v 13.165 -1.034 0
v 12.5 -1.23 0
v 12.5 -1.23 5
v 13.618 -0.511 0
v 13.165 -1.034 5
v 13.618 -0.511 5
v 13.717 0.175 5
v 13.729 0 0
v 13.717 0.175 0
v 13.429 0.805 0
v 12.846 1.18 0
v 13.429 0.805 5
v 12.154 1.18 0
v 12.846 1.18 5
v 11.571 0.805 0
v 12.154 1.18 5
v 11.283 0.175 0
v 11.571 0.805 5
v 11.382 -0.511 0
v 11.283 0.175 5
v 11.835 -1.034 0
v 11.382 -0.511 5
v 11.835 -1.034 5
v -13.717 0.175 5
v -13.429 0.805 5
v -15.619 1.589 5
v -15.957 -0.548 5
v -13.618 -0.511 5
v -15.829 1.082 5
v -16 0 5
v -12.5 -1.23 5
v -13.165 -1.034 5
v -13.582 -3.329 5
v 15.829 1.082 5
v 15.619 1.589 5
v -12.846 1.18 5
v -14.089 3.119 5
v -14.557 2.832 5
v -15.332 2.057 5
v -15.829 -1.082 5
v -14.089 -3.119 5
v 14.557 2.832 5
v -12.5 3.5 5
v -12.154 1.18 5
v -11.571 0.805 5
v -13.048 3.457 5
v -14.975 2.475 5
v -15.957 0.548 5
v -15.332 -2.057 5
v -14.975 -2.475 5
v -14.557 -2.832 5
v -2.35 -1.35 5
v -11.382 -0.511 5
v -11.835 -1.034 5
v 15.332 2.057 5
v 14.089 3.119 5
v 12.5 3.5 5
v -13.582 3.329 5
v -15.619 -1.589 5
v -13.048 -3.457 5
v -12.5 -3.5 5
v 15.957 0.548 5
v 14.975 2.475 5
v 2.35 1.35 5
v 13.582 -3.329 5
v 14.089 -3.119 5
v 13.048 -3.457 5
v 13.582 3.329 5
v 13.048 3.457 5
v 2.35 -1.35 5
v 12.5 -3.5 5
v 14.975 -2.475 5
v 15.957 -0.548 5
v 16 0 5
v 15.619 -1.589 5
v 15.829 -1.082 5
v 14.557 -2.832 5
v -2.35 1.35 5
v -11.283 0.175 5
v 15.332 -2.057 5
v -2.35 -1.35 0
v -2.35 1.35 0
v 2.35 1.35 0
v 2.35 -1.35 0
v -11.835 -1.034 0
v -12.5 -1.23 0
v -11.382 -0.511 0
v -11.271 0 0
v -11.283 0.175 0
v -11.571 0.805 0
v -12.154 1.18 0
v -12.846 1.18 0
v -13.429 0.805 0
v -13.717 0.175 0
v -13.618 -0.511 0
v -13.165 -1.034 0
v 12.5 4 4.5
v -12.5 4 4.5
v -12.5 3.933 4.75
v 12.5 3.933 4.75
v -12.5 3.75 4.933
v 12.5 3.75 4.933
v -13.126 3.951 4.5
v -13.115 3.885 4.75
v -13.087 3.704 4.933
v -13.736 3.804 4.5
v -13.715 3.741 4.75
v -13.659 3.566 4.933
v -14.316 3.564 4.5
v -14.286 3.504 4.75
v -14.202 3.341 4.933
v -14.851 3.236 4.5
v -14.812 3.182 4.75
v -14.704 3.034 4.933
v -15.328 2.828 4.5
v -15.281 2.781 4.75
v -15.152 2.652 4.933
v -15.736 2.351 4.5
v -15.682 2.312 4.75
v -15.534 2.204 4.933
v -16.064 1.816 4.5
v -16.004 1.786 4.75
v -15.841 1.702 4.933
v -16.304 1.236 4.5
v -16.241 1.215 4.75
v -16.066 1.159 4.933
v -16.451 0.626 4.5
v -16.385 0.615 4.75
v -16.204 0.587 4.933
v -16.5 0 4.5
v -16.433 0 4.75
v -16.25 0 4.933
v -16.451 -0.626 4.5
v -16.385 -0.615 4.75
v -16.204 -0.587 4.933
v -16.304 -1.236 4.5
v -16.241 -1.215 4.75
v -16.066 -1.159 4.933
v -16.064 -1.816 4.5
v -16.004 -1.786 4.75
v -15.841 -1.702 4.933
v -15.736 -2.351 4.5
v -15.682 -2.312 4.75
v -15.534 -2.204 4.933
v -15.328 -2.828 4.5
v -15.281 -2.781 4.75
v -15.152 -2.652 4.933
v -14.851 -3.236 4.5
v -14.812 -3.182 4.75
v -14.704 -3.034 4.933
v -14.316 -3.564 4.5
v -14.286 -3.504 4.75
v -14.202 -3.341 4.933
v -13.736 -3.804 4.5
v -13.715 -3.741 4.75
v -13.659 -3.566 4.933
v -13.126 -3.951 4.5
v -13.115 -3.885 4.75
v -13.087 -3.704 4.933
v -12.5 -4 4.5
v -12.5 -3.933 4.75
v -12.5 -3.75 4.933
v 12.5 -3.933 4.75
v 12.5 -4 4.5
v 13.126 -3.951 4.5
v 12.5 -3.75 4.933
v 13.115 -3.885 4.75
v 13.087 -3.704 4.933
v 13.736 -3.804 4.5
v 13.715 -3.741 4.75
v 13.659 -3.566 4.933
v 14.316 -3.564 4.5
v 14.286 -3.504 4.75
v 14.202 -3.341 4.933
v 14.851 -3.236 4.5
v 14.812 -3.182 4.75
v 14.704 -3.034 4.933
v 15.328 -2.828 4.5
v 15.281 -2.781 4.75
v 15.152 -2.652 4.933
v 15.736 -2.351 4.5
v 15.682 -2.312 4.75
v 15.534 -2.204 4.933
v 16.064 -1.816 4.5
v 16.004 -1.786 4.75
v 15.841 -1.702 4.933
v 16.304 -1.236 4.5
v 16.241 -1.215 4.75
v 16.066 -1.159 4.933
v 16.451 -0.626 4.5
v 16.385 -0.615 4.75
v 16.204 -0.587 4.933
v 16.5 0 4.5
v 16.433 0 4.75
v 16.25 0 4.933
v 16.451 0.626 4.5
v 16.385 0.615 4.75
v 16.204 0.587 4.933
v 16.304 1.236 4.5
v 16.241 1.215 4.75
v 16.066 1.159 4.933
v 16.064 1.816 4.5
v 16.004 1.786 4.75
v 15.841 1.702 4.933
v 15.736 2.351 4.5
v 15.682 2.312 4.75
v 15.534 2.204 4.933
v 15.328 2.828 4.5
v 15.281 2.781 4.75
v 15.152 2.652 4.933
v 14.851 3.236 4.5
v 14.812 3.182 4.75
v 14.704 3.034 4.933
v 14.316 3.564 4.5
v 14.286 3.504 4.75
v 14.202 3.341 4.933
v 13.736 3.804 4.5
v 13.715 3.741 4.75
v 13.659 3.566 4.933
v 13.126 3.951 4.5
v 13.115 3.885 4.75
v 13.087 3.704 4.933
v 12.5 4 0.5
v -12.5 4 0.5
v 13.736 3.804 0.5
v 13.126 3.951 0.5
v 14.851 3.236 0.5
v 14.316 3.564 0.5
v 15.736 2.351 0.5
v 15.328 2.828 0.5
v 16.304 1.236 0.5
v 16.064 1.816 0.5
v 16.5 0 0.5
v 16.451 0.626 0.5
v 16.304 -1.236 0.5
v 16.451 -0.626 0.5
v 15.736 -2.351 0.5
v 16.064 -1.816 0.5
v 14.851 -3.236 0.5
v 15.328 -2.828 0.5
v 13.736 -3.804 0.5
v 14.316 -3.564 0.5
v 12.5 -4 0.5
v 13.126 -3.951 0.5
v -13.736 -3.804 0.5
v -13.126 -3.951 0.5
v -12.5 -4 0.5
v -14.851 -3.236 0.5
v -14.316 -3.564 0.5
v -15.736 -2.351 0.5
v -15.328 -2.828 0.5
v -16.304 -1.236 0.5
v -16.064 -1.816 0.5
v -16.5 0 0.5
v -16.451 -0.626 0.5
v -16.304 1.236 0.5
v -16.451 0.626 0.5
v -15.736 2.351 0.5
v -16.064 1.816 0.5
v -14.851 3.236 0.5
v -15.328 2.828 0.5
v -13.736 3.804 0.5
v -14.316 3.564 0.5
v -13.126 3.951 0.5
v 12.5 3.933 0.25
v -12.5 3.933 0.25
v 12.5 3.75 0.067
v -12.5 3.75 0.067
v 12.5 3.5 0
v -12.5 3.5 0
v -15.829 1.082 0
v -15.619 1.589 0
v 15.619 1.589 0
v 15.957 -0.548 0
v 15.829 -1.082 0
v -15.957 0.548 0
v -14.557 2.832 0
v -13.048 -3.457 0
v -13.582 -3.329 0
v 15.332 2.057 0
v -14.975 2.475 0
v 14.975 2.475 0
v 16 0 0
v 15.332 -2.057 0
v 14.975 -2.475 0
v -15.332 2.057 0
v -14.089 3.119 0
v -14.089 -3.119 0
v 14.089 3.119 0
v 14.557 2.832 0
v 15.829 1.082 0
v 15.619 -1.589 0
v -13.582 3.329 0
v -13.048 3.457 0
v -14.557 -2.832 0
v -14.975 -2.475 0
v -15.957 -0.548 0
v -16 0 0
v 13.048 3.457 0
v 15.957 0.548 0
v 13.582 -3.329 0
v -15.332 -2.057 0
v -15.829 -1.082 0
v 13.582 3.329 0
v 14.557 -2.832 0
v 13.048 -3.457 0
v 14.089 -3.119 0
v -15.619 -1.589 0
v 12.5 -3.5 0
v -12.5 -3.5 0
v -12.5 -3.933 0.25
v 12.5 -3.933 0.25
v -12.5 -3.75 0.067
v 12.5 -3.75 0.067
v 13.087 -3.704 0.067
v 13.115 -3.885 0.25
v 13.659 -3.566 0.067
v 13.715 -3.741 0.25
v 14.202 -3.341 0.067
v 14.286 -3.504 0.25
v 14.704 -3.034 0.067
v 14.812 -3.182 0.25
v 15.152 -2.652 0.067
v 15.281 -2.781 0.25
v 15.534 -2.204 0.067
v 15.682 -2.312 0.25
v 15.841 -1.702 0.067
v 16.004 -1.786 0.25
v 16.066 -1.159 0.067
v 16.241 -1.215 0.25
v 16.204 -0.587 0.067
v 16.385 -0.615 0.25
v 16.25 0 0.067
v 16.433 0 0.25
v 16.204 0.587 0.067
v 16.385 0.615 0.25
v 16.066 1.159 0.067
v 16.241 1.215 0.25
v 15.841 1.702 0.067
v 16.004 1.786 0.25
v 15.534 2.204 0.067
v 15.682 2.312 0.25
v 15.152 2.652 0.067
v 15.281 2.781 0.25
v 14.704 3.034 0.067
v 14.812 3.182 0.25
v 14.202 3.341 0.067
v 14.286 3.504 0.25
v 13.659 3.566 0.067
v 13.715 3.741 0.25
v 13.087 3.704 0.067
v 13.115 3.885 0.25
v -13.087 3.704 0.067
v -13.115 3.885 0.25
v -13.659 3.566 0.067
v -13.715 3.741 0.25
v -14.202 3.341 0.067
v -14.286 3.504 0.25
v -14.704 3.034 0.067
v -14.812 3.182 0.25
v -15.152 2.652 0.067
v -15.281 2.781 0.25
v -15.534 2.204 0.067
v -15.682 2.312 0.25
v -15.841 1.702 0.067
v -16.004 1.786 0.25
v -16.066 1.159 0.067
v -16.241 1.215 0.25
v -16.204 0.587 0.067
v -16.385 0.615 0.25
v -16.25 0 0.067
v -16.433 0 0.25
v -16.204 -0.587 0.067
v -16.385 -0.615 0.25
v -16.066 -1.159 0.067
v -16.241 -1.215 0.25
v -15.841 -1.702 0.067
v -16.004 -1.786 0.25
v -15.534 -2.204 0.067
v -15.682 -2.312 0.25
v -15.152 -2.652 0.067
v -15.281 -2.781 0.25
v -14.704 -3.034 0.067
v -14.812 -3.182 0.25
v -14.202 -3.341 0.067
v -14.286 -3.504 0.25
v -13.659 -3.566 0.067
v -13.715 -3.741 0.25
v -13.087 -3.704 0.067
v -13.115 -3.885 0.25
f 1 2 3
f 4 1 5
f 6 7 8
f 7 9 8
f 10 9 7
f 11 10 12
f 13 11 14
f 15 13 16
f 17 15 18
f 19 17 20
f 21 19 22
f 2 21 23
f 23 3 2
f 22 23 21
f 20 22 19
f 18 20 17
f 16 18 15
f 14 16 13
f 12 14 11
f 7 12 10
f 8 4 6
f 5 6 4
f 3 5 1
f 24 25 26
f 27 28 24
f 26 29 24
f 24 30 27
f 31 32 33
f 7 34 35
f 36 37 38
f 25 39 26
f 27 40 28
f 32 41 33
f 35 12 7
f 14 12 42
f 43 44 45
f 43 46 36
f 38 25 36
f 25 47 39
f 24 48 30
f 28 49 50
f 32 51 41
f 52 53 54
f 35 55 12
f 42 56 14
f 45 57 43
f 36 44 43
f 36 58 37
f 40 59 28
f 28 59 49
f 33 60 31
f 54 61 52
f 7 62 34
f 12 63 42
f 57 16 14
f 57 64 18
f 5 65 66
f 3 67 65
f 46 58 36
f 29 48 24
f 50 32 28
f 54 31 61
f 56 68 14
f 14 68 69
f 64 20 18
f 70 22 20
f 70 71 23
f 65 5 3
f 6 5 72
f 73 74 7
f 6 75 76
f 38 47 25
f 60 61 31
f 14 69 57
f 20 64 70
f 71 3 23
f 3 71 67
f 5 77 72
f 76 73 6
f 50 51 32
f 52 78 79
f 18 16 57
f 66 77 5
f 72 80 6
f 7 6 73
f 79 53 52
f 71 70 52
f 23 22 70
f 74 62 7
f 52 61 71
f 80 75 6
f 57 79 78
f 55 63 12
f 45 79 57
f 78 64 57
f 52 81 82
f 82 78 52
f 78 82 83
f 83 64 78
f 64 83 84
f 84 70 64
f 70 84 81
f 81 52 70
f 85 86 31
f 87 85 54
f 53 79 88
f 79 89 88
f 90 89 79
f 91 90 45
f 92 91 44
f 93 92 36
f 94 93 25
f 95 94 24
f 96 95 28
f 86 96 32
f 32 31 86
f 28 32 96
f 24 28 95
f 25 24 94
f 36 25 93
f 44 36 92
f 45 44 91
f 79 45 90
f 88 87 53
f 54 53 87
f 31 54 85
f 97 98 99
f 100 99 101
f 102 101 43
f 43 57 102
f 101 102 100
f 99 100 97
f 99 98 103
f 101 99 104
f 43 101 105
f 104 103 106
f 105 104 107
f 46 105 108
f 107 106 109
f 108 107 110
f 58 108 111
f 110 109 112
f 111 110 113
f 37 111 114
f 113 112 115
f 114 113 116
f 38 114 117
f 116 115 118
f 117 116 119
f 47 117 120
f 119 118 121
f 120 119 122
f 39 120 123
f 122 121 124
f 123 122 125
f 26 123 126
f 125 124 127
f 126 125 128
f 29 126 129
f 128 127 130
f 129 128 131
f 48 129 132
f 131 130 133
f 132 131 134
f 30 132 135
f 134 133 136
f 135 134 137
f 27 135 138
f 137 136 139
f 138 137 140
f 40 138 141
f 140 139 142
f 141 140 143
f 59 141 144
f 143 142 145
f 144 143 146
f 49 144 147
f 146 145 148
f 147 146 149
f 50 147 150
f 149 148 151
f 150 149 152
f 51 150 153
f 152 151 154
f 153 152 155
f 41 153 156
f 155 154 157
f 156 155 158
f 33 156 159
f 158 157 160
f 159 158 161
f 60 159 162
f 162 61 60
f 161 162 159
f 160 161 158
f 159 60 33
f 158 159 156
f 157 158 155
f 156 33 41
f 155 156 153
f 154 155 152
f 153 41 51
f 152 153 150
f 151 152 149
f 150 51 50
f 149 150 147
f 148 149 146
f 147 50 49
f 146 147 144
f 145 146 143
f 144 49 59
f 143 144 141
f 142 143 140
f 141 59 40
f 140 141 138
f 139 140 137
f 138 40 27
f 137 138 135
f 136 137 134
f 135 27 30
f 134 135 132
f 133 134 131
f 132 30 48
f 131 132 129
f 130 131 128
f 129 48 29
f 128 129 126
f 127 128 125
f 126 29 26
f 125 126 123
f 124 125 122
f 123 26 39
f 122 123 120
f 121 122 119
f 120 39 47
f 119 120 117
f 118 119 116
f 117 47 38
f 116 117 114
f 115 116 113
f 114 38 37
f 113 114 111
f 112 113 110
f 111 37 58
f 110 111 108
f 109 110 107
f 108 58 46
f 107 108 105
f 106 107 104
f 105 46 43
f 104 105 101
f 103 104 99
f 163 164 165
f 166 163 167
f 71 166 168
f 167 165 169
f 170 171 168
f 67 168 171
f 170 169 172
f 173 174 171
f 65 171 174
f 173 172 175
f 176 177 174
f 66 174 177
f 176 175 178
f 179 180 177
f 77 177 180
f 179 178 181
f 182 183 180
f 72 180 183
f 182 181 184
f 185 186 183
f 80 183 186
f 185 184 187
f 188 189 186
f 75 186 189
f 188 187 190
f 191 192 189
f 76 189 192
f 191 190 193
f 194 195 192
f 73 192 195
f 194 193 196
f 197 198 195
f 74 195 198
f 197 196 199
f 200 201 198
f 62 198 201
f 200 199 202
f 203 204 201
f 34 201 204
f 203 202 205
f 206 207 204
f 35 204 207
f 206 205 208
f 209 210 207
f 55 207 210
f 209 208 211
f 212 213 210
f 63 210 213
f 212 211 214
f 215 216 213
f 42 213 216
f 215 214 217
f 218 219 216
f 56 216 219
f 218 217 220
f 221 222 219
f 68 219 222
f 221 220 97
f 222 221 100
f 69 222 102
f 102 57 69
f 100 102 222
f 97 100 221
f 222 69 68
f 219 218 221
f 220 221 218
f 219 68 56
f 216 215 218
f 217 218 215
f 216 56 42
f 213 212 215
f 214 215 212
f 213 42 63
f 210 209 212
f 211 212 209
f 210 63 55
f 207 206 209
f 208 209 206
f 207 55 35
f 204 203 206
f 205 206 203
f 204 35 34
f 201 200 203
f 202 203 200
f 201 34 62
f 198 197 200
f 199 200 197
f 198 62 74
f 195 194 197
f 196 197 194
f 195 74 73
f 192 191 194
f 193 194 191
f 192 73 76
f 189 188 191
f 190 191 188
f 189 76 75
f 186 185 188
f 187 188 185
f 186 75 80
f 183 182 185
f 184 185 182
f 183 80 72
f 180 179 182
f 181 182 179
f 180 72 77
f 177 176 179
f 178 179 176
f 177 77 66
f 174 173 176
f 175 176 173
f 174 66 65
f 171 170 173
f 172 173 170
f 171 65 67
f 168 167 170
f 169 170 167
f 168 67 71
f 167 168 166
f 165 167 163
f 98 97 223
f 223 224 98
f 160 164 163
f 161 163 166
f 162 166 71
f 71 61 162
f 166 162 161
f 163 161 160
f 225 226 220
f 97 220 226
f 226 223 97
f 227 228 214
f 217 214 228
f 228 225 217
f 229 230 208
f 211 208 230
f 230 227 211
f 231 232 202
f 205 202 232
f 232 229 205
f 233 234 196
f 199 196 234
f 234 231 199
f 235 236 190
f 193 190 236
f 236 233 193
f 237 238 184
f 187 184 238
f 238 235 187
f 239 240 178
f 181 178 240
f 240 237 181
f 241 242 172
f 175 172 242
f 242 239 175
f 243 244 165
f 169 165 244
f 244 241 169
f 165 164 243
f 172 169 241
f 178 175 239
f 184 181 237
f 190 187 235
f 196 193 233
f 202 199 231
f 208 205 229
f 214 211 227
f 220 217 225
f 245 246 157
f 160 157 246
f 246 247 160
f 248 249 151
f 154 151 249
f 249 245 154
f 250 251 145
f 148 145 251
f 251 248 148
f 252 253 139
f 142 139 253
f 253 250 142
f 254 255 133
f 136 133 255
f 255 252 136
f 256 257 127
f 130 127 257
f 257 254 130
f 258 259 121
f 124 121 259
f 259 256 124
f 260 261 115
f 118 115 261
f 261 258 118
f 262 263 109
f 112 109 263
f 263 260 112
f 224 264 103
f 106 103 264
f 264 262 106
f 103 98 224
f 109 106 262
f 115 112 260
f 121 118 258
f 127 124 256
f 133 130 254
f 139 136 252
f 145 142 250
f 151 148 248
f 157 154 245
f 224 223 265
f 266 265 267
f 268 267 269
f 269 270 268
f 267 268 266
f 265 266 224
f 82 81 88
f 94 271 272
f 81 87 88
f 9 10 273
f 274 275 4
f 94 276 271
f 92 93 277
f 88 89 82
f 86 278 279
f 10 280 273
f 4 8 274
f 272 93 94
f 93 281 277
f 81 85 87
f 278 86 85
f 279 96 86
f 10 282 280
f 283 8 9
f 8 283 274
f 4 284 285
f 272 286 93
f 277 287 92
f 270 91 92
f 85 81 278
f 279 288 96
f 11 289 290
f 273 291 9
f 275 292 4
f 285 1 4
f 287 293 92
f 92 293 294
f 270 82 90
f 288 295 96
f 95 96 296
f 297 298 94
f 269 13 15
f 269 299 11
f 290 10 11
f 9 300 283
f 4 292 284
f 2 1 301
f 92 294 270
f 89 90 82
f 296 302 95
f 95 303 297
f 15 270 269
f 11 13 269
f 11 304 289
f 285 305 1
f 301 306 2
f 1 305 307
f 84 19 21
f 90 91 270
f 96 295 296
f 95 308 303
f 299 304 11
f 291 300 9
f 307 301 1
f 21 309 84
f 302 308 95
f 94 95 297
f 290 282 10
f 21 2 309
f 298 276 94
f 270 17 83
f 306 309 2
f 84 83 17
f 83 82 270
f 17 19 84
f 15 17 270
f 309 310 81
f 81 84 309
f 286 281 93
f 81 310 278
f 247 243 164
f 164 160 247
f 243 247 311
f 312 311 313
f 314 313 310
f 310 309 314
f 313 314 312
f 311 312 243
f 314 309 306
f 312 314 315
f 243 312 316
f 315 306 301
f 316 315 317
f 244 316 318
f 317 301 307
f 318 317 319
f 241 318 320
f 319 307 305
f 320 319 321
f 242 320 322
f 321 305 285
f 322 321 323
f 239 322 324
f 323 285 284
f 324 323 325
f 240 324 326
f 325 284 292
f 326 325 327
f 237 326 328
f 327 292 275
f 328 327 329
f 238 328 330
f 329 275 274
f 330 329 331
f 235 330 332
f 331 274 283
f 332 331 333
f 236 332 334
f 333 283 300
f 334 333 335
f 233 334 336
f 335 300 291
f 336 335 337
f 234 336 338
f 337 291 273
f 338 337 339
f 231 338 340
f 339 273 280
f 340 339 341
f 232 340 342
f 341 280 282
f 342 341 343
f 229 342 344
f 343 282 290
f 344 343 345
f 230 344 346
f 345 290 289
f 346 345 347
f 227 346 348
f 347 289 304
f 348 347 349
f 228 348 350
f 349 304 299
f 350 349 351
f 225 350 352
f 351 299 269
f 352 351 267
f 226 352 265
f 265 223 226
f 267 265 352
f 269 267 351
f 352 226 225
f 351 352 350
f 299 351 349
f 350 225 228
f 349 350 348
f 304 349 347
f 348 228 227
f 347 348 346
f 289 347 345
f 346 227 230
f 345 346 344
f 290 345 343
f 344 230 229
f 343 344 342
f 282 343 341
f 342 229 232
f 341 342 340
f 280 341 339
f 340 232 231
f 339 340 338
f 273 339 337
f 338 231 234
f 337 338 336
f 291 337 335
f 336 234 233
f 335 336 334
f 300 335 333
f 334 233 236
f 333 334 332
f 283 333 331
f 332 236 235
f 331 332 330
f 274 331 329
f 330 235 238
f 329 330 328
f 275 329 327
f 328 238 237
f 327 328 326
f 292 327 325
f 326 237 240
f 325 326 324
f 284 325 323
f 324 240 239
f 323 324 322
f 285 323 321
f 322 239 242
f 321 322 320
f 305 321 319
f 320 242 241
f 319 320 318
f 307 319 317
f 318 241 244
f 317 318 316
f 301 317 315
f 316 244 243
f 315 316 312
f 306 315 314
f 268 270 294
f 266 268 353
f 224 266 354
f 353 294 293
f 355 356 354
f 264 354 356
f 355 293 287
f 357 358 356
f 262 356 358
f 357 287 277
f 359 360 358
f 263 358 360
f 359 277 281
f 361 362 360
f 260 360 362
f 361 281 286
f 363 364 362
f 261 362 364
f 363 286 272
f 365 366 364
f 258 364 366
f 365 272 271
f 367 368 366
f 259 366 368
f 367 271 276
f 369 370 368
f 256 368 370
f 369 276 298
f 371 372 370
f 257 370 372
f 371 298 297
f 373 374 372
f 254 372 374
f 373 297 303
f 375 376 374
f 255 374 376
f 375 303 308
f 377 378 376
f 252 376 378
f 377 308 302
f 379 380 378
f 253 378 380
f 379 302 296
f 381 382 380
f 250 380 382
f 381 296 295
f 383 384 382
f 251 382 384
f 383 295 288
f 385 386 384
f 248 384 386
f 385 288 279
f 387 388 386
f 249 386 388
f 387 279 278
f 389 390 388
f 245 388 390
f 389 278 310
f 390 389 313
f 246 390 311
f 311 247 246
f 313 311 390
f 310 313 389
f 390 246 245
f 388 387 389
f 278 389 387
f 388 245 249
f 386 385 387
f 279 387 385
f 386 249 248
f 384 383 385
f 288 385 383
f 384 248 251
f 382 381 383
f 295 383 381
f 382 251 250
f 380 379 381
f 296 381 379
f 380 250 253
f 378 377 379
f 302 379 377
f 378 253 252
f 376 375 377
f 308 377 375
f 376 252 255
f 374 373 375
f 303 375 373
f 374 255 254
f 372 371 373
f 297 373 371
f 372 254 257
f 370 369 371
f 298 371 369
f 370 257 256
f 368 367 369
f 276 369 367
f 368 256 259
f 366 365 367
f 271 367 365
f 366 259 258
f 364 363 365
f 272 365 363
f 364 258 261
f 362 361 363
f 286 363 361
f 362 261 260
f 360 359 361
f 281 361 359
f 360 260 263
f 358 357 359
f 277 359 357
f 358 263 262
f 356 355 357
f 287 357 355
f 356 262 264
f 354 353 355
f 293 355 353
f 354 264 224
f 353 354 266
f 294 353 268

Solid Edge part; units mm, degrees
sketch "Sketch1" plane through (0, 0, 0) normal (0, 0, 1) x (1, 0, 0)
  line L0 (-2.35, -1.35) -> (2.35, -1.35)
  line L1 (2.35, -1.35) -> (2.35, 1.35)
  line L2 (2.35, 1.35) -> (-2.35, 1.35)
  line L3 (-2.35, 1.35) -> (-2.35, -1.35)
  line L4 (12.5, 4) -> (-12.5, 4)
  line L5 (-12.5, -4) -> (12.5, -4)
  arc A0 (-12.5, -4) -> (-12.5, 4) centre (-12.5, 0) cw
  arc A1 (12.5, 4) -> (12.5, -4) centre (12.5, 0) cw
extrude "Protrusion1" add sketch "Sketch1" along normal blind 5
fillet "Round_1" radius 0.5 6 edges at (0, 4, 5) (-16.5, 0, 5) (16.5, 0, 5) (0, -4, 0) (16.5, 0, 0) (-16.5, 0, 0)
hole "Hole_3" at (12.5, 0, 5) direction (0, 0, -1) diameter 2.459 end through all
hole "Hole1" at (-12.5, 0, 5) direction (0, 0, -1) diameter 2.459 end through all
